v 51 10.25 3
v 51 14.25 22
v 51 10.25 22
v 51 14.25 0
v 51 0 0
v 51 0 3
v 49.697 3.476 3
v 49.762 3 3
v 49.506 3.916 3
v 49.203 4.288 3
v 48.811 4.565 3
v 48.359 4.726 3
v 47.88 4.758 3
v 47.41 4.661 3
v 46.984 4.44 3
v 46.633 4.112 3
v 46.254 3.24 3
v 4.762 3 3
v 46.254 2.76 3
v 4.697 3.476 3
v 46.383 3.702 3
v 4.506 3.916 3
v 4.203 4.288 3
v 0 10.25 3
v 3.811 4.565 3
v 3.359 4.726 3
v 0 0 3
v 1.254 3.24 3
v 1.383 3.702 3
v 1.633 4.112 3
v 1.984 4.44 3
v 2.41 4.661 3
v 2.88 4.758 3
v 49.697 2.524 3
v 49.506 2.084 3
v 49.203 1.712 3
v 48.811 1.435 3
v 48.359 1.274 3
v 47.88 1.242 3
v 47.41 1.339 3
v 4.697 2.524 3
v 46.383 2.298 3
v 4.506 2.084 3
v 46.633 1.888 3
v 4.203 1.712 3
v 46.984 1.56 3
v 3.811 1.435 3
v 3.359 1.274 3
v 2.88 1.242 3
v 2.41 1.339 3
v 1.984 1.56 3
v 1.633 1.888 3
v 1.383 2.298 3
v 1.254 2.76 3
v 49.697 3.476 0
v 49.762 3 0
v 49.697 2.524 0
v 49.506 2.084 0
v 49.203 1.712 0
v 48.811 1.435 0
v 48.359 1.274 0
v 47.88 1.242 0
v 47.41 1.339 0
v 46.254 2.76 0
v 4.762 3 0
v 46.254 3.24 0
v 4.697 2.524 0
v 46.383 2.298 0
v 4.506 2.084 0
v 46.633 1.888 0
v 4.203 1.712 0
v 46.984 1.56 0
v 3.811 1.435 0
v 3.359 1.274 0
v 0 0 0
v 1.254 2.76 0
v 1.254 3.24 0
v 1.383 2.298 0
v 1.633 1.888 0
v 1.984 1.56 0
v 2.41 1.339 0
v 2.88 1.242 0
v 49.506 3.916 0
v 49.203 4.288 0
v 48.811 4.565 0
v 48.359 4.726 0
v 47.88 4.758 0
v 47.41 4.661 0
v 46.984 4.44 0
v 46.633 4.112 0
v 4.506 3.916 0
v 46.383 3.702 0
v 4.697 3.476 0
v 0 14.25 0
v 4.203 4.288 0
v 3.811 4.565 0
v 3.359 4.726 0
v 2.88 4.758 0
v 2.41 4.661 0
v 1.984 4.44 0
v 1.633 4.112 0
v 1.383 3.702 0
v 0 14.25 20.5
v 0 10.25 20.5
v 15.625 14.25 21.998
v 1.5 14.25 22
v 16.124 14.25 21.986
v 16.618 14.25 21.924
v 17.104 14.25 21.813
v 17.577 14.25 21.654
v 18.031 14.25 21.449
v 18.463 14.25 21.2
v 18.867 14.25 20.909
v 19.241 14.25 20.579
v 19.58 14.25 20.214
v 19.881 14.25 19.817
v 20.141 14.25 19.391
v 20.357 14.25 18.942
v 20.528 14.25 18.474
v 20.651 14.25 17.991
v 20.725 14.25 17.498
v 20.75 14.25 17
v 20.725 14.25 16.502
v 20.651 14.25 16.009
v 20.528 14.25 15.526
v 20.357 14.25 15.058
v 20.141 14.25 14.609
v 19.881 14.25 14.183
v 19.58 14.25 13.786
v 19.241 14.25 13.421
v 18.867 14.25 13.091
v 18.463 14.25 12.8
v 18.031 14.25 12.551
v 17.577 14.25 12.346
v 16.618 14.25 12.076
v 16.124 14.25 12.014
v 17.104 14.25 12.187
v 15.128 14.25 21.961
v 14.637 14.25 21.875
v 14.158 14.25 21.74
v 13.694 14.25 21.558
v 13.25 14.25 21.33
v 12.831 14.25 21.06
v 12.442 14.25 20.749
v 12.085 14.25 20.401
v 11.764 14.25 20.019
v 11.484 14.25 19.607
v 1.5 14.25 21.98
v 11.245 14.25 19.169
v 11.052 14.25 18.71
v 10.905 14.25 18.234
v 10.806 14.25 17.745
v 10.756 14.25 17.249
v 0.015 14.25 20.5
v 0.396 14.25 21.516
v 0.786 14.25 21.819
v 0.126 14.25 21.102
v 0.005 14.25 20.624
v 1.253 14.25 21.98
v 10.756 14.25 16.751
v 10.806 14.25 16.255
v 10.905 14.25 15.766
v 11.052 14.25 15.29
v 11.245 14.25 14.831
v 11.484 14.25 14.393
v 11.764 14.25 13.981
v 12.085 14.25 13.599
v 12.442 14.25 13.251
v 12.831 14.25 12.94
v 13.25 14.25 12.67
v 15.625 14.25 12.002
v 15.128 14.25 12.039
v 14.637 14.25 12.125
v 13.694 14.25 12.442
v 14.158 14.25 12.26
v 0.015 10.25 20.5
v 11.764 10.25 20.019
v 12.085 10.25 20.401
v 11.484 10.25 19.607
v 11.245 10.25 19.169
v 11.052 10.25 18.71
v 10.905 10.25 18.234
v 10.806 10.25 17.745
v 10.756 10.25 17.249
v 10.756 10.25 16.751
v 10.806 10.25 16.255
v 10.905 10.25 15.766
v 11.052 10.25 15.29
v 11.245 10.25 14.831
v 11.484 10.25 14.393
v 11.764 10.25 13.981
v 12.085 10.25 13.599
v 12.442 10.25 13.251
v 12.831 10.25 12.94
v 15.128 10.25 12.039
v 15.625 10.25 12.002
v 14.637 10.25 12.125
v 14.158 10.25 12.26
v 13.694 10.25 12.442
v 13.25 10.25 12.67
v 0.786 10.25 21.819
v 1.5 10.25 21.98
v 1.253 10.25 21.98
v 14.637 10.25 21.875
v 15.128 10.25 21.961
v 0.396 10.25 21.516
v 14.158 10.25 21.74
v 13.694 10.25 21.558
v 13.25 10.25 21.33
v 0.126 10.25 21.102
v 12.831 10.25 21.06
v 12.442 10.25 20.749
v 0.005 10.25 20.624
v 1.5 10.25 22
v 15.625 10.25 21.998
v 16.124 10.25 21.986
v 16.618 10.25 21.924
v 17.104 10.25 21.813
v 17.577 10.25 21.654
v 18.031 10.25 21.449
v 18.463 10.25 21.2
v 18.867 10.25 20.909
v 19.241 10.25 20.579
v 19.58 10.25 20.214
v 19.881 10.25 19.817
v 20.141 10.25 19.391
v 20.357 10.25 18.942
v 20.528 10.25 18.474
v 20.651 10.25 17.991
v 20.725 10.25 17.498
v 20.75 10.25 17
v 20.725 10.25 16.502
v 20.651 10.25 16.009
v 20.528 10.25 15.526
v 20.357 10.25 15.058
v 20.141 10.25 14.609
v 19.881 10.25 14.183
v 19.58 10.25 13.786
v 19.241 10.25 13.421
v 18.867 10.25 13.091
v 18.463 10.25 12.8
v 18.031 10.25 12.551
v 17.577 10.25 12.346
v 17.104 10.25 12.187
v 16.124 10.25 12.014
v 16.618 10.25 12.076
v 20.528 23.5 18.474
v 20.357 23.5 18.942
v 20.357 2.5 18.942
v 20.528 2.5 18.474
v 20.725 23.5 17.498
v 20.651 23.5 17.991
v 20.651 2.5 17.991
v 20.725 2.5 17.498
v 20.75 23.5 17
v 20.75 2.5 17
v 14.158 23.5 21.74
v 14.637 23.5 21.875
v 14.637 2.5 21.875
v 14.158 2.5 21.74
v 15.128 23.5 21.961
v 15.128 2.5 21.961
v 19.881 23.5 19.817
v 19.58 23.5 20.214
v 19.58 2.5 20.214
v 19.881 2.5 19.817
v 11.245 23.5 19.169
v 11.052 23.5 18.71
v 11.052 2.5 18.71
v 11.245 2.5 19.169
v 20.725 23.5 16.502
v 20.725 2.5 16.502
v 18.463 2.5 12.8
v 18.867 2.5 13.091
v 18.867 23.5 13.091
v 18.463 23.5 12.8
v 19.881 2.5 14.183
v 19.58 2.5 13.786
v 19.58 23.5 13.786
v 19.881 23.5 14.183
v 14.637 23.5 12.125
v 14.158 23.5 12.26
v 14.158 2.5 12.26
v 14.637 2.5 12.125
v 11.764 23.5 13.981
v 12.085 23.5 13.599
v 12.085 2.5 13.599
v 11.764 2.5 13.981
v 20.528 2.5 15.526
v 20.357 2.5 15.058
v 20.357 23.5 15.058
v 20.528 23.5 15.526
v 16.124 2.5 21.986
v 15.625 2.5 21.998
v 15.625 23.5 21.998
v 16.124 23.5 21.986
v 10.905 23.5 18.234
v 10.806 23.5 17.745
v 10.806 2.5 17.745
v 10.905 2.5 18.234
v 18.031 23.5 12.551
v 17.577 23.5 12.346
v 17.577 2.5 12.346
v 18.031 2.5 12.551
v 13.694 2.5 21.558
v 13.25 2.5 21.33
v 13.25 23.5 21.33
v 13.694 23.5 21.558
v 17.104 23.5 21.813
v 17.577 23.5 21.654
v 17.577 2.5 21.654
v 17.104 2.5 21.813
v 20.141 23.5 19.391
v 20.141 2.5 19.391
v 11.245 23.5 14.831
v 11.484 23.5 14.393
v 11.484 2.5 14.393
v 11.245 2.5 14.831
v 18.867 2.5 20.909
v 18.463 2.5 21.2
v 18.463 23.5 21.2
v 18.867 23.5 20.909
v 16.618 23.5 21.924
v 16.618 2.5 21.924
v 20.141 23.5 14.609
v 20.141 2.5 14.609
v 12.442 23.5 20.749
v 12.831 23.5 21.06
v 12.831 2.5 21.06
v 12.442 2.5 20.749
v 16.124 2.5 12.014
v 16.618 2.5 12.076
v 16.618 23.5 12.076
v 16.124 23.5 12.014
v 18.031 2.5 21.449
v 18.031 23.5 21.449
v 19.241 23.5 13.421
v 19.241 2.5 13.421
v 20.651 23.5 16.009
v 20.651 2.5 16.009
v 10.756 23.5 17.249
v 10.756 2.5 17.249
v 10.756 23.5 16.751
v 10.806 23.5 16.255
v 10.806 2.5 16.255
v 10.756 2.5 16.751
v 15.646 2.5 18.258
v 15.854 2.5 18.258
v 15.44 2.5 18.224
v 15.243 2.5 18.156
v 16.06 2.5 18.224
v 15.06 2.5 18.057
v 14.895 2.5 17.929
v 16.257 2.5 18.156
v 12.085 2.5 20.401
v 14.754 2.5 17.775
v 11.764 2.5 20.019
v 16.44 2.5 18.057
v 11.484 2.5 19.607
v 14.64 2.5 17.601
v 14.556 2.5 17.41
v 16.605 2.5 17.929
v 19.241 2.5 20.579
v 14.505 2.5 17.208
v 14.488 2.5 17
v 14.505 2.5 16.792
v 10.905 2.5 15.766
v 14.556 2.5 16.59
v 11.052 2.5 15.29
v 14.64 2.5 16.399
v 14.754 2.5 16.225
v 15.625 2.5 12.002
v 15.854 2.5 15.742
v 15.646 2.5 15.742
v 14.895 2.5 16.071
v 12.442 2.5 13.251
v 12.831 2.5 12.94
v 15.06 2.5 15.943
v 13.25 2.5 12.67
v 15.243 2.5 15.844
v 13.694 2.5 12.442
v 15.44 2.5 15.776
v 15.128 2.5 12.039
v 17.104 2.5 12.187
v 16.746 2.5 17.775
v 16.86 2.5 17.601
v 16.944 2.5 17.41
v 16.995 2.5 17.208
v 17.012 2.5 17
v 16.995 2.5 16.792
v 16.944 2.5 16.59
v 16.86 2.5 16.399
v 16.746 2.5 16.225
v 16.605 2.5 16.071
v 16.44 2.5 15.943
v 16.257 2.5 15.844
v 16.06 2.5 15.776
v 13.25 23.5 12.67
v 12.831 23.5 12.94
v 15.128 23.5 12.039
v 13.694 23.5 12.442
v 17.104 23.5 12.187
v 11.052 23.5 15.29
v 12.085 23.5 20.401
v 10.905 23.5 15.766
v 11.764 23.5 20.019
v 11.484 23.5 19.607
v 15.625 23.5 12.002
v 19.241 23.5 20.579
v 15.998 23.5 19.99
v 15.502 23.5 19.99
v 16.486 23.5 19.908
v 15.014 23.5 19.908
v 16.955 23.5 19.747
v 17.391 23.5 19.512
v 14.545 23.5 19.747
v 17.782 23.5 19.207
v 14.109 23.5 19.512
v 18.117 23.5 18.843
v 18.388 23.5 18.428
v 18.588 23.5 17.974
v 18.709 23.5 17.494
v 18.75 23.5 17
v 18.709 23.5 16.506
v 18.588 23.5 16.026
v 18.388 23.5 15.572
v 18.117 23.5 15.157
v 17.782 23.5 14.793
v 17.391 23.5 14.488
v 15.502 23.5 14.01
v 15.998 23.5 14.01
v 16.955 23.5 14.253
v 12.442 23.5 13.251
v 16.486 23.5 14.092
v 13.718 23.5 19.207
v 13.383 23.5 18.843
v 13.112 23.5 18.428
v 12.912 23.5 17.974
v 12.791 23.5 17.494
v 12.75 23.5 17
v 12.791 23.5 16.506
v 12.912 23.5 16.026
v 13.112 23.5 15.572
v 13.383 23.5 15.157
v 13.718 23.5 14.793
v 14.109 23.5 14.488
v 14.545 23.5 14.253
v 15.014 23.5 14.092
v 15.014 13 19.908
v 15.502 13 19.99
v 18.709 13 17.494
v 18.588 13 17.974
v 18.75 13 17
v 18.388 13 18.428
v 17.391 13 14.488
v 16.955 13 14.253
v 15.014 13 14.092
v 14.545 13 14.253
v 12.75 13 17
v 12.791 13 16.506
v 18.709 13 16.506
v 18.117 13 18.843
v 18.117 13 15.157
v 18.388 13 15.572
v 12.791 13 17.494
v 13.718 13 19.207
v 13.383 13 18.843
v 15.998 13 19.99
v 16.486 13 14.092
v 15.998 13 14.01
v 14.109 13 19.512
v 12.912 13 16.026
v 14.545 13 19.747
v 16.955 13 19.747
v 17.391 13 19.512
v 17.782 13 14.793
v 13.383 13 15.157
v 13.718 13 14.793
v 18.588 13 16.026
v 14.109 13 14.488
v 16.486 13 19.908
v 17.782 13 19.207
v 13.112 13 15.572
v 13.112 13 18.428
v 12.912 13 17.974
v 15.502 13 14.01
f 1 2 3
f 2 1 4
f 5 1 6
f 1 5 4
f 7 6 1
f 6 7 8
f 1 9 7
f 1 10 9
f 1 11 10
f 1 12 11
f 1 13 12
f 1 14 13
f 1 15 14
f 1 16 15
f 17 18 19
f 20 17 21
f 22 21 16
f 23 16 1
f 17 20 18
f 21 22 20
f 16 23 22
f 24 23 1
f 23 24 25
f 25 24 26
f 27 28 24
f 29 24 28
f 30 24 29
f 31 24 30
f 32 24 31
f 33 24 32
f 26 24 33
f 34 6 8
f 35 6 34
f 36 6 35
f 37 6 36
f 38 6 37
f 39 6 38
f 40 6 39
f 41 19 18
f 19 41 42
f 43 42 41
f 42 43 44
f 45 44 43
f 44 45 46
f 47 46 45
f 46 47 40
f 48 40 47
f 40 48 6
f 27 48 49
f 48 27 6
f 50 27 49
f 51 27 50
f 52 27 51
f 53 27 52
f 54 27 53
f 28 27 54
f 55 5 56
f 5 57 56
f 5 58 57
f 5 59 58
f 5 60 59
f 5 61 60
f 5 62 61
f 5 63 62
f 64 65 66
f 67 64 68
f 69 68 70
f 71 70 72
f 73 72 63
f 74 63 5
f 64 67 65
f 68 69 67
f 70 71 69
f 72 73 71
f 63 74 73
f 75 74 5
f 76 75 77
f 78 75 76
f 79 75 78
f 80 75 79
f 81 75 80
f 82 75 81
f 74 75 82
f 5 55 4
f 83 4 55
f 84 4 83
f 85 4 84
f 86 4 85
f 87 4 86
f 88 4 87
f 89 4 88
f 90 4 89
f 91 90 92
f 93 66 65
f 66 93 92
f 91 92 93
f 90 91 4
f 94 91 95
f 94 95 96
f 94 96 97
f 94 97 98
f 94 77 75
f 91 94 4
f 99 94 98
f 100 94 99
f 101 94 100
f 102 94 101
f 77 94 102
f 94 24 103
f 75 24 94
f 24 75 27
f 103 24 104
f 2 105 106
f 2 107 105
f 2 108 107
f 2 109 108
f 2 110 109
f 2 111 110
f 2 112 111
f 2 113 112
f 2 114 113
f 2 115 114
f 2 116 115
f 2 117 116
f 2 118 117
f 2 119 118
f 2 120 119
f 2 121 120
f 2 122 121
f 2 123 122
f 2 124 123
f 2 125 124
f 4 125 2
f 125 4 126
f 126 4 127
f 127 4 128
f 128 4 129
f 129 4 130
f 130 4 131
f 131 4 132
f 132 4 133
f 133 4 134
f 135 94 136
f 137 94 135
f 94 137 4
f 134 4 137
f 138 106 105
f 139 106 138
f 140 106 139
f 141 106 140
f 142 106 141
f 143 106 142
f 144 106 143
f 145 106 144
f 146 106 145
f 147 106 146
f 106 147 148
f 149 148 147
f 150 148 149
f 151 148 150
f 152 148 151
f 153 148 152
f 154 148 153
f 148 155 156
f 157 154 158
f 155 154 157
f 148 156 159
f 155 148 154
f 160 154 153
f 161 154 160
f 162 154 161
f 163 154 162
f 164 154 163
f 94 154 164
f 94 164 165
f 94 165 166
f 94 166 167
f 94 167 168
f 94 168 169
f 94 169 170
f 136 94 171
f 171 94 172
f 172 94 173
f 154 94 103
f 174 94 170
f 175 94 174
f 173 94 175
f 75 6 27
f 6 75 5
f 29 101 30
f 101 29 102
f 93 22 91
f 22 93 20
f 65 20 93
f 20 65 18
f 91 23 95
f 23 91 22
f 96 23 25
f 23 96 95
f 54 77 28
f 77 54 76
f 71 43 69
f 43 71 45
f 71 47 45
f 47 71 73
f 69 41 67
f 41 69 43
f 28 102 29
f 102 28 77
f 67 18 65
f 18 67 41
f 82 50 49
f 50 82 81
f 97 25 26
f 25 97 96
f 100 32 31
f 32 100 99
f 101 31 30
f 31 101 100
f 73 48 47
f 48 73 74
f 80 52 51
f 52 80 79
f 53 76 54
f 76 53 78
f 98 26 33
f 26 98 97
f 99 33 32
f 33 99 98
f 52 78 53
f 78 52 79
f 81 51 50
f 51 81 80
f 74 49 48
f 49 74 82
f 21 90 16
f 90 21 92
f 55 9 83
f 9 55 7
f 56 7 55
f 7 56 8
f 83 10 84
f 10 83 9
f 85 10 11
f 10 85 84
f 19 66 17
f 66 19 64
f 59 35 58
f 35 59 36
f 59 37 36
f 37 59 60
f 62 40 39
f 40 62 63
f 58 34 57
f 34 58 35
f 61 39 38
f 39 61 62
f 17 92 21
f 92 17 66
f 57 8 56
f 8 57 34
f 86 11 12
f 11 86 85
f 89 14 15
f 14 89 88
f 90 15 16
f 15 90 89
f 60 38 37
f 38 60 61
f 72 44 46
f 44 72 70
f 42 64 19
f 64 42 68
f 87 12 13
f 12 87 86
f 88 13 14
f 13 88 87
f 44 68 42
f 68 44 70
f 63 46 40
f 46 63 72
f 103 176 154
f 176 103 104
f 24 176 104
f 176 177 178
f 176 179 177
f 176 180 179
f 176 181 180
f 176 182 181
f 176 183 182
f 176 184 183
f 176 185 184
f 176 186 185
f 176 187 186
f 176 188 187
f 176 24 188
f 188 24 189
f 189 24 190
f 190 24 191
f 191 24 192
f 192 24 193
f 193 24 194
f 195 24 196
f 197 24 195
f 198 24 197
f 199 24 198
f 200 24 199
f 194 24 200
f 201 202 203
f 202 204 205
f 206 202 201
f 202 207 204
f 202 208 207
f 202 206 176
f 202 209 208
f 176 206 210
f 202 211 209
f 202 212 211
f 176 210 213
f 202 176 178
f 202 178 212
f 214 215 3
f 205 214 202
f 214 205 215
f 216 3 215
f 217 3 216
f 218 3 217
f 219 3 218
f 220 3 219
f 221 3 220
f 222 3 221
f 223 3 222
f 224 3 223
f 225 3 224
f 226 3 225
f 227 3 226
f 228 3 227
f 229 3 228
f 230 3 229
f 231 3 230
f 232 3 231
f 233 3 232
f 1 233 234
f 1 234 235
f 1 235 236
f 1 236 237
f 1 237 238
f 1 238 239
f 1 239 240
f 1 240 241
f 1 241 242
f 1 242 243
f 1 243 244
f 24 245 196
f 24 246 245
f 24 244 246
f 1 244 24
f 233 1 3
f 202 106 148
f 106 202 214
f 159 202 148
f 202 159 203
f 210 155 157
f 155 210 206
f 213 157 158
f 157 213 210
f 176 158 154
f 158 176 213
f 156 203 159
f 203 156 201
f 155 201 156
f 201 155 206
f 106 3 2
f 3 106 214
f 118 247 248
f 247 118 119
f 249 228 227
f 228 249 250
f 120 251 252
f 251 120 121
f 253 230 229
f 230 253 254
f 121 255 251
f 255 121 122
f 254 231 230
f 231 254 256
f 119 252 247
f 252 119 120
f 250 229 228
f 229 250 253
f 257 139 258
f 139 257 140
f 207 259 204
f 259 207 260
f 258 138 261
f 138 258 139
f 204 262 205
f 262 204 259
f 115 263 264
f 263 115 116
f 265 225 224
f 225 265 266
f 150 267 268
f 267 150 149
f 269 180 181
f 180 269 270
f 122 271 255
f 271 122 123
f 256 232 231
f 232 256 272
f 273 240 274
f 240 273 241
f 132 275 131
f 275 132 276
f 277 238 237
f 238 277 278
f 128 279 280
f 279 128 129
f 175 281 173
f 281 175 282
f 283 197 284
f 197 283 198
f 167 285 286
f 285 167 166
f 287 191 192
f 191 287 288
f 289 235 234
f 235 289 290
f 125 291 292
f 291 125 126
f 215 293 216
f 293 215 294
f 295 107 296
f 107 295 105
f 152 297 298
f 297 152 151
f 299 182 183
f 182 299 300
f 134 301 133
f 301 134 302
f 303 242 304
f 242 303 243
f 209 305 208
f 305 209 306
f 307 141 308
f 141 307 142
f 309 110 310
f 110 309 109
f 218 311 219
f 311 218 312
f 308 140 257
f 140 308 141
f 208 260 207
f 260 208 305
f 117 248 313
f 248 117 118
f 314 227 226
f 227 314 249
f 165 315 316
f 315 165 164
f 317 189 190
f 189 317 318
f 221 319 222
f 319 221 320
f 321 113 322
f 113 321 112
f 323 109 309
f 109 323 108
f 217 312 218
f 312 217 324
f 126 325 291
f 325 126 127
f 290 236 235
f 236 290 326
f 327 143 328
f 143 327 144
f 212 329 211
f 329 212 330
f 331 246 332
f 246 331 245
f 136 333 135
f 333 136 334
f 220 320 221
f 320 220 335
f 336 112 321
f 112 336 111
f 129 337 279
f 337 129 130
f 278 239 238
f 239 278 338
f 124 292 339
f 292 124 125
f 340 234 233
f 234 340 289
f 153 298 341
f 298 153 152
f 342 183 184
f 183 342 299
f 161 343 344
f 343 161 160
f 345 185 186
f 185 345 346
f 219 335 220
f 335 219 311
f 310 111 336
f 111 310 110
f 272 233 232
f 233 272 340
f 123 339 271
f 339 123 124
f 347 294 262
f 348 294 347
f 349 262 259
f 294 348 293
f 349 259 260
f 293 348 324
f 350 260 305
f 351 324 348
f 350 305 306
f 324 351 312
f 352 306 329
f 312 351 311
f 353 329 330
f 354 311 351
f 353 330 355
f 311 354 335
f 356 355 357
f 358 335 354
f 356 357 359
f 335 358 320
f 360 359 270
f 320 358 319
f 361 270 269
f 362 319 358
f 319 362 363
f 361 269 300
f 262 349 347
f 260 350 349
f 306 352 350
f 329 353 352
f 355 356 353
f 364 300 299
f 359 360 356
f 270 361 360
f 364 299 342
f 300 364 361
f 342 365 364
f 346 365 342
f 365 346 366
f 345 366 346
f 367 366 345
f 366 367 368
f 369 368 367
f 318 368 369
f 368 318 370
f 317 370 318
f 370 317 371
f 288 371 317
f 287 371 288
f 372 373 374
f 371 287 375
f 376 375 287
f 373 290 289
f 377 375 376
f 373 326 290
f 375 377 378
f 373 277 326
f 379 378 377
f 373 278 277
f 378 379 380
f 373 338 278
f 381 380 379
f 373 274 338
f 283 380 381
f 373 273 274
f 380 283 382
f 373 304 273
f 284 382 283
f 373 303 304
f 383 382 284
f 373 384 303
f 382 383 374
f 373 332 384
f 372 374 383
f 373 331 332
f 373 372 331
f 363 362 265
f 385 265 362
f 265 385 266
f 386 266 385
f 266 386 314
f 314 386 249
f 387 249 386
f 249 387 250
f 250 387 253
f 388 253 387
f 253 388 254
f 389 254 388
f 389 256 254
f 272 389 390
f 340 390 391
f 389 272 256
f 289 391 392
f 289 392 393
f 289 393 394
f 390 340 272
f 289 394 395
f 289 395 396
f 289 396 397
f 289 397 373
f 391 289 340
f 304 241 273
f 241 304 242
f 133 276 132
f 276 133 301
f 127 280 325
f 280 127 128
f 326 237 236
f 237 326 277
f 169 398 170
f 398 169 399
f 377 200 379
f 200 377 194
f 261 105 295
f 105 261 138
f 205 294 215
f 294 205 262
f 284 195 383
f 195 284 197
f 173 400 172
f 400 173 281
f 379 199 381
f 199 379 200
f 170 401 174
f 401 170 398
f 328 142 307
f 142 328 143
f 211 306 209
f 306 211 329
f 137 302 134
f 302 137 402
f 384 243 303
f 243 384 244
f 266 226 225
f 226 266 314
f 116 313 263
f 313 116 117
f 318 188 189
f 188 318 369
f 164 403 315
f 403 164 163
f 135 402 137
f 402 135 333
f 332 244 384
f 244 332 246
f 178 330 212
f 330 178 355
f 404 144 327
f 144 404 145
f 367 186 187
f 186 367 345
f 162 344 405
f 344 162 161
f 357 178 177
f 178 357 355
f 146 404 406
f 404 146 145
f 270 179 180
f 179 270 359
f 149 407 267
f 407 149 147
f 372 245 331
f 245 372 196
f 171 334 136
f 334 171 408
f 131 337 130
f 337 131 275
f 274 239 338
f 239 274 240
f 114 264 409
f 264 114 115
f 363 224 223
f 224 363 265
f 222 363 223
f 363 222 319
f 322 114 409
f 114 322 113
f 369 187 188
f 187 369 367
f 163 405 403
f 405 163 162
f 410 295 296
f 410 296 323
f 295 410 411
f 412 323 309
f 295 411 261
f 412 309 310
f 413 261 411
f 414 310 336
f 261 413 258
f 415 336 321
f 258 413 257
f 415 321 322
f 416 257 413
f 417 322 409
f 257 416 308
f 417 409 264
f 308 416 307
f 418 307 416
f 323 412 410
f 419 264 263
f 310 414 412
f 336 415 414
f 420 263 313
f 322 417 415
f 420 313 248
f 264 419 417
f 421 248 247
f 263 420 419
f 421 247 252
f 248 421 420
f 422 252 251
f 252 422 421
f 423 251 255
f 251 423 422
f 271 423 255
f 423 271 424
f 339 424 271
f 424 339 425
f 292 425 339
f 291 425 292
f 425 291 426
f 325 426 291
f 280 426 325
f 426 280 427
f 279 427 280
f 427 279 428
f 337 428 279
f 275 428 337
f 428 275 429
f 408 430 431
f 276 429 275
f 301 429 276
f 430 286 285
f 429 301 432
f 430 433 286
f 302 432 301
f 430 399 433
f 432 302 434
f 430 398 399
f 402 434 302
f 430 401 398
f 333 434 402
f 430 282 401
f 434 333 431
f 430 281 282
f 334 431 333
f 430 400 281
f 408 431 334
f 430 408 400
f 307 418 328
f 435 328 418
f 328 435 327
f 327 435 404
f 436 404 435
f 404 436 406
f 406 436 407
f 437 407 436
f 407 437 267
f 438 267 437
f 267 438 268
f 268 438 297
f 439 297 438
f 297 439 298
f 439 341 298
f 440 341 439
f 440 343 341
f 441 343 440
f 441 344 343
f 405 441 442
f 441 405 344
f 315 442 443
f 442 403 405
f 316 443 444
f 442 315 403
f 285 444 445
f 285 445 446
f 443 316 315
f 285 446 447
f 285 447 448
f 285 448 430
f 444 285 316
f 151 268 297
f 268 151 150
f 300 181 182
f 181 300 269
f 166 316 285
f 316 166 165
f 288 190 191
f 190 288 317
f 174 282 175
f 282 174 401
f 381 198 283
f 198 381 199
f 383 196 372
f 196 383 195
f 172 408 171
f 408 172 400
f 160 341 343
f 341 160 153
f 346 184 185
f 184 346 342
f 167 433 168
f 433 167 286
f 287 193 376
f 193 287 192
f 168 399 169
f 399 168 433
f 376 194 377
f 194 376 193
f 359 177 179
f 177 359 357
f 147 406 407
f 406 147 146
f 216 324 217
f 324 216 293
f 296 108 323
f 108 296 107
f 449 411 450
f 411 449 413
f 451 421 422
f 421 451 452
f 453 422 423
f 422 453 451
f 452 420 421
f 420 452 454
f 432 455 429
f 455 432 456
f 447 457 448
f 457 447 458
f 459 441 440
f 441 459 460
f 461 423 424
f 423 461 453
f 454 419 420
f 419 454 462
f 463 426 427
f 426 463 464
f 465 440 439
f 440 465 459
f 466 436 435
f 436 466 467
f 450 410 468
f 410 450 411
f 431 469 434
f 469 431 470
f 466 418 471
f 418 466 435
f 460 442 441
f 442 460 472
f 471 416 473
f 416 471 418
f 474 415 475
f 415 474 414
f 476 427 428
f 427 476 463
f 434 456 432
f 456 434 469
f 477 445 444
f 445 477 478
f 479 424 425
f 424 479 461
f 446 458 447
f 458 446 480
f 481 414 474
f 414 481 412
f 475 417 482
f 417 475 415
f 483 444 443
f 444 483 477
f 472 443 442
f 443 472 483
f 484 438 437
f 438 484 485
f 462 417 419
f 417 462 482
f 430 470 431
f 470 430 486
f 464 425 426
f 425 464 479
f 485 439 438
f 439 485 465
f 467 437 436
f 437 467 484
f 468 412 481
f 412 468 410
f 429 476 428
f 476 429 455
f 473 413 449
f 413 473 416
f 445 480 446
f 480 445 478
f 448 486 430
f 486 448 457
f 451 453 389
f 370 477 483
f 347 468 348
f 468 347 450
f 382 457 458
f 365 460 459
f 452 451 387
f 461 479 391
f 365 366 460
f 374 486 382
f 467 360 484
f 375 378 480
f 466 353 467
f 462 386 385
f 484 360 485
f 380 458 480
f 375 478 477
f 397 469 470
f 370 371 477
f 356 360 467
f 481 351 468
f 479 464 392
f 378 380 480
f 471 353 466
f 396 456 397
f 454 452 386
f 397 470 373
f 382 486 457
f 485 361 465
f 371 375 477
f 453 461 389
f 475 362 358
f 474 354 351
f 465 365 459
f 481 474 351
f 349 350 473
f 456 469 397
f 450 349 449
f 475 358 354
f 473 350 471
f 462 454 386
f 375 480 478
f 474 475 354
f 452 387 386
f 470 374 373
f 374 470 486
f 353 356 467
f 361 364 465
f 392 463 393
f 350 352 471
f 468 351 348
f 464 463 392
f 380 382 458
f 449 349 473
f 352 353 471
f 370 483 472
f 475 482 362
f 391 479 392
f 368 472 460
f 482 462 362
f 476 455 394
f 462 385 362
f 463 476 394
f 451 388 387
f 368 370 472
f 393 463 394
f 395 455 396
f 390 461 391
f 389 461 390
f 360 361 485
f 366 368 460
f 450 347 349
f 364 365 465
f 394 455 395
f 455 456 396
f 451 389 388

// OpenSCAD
// Bad implementation but I dont care, it should just work, thats it

mount_holes_space = 45;
hole_offset_x = 15.75;
hole_offset_y = 7.25;
hole_offset_z = 14;
tube_diameter = 6;
tube_mount_length = 21;
screw_width = 3;
screw_depth = 3;

$fa = $preview ? 15 : 5;
$fs = $preview ? 2 : 0.5;

filament_thickness = 1.75;
anti_warp = .15;

function anti_warp_widen(v) = v + ((filament_thickness * anti_warp) * 2);
function anti_warp_shrink(v) = v - ((filament_thickness * anti_warp) * 2);

module screw_hole(width) {
	cylinder(h = screw_depth, d = anti_warp_widen(width));
}

module base_mount() {
	screw_offset = screw_width * 2;
	difference() {
		cube([mount_holes_space + screw_width * 2, 7 + hole_offset_y, screw_depth]);
		translate([screw_width, screw_width]) screw_hole(screw_width);
		translate([screw_width + mount_holes_space, screw_width]) screw_hole(screw_width);
	}
}

module tube_mount() {
	difference() {
		cylinder(h = tube_mount_length, d = tube_diameter + 4);
		cylinder(h = tube_mount_length, d = tube_diameter);
	}
	translate([0, 0, tube_mount_length / 2]) {
		difference() {
			cylinder(h = tube_mount_length / 2, d = tube_diameter + 4);
			cylinder(h = tube_mount_length / 2, d2 = anti_warp_widen(2), d1 = tube_diameter);
		}
	}
}

module side_plate() {
	difference() {
		cube([mount_holes_space + screw_width * 2, 4, hole_offset_z + 5]);
		translate([screw_depth / 2, 0, -screw_depth / 2 + hole_offset_z + 5]) rotate([0, 90, 90]) {
			difference() {
				translate([-4, 0, 0]) cube([4, 4, 4]);
				cylinder(h = 4, d = screw_depth);
			}
		}
	}
}

module top_mount() {
	translate([0, hole_offset_y + 3, screw_depth]) {
		difference() {
			side_plate();
			translate([hole_offset_x, hole_offset_y, hole_offset_z]) rotate([90, 0, 0]) {
				cylinder(h = tube_mount_length, d = anti_warp_widen(tube_diameter));
			}
		}
		translate([hole_offset_x, hole_offset_y + 6, hole_offset_z]) rotate([90, 0, 0]) {
			tube_mount();
		}
	}
}

module mount() {
	base_mount();
	top_mount();
}

mount();
